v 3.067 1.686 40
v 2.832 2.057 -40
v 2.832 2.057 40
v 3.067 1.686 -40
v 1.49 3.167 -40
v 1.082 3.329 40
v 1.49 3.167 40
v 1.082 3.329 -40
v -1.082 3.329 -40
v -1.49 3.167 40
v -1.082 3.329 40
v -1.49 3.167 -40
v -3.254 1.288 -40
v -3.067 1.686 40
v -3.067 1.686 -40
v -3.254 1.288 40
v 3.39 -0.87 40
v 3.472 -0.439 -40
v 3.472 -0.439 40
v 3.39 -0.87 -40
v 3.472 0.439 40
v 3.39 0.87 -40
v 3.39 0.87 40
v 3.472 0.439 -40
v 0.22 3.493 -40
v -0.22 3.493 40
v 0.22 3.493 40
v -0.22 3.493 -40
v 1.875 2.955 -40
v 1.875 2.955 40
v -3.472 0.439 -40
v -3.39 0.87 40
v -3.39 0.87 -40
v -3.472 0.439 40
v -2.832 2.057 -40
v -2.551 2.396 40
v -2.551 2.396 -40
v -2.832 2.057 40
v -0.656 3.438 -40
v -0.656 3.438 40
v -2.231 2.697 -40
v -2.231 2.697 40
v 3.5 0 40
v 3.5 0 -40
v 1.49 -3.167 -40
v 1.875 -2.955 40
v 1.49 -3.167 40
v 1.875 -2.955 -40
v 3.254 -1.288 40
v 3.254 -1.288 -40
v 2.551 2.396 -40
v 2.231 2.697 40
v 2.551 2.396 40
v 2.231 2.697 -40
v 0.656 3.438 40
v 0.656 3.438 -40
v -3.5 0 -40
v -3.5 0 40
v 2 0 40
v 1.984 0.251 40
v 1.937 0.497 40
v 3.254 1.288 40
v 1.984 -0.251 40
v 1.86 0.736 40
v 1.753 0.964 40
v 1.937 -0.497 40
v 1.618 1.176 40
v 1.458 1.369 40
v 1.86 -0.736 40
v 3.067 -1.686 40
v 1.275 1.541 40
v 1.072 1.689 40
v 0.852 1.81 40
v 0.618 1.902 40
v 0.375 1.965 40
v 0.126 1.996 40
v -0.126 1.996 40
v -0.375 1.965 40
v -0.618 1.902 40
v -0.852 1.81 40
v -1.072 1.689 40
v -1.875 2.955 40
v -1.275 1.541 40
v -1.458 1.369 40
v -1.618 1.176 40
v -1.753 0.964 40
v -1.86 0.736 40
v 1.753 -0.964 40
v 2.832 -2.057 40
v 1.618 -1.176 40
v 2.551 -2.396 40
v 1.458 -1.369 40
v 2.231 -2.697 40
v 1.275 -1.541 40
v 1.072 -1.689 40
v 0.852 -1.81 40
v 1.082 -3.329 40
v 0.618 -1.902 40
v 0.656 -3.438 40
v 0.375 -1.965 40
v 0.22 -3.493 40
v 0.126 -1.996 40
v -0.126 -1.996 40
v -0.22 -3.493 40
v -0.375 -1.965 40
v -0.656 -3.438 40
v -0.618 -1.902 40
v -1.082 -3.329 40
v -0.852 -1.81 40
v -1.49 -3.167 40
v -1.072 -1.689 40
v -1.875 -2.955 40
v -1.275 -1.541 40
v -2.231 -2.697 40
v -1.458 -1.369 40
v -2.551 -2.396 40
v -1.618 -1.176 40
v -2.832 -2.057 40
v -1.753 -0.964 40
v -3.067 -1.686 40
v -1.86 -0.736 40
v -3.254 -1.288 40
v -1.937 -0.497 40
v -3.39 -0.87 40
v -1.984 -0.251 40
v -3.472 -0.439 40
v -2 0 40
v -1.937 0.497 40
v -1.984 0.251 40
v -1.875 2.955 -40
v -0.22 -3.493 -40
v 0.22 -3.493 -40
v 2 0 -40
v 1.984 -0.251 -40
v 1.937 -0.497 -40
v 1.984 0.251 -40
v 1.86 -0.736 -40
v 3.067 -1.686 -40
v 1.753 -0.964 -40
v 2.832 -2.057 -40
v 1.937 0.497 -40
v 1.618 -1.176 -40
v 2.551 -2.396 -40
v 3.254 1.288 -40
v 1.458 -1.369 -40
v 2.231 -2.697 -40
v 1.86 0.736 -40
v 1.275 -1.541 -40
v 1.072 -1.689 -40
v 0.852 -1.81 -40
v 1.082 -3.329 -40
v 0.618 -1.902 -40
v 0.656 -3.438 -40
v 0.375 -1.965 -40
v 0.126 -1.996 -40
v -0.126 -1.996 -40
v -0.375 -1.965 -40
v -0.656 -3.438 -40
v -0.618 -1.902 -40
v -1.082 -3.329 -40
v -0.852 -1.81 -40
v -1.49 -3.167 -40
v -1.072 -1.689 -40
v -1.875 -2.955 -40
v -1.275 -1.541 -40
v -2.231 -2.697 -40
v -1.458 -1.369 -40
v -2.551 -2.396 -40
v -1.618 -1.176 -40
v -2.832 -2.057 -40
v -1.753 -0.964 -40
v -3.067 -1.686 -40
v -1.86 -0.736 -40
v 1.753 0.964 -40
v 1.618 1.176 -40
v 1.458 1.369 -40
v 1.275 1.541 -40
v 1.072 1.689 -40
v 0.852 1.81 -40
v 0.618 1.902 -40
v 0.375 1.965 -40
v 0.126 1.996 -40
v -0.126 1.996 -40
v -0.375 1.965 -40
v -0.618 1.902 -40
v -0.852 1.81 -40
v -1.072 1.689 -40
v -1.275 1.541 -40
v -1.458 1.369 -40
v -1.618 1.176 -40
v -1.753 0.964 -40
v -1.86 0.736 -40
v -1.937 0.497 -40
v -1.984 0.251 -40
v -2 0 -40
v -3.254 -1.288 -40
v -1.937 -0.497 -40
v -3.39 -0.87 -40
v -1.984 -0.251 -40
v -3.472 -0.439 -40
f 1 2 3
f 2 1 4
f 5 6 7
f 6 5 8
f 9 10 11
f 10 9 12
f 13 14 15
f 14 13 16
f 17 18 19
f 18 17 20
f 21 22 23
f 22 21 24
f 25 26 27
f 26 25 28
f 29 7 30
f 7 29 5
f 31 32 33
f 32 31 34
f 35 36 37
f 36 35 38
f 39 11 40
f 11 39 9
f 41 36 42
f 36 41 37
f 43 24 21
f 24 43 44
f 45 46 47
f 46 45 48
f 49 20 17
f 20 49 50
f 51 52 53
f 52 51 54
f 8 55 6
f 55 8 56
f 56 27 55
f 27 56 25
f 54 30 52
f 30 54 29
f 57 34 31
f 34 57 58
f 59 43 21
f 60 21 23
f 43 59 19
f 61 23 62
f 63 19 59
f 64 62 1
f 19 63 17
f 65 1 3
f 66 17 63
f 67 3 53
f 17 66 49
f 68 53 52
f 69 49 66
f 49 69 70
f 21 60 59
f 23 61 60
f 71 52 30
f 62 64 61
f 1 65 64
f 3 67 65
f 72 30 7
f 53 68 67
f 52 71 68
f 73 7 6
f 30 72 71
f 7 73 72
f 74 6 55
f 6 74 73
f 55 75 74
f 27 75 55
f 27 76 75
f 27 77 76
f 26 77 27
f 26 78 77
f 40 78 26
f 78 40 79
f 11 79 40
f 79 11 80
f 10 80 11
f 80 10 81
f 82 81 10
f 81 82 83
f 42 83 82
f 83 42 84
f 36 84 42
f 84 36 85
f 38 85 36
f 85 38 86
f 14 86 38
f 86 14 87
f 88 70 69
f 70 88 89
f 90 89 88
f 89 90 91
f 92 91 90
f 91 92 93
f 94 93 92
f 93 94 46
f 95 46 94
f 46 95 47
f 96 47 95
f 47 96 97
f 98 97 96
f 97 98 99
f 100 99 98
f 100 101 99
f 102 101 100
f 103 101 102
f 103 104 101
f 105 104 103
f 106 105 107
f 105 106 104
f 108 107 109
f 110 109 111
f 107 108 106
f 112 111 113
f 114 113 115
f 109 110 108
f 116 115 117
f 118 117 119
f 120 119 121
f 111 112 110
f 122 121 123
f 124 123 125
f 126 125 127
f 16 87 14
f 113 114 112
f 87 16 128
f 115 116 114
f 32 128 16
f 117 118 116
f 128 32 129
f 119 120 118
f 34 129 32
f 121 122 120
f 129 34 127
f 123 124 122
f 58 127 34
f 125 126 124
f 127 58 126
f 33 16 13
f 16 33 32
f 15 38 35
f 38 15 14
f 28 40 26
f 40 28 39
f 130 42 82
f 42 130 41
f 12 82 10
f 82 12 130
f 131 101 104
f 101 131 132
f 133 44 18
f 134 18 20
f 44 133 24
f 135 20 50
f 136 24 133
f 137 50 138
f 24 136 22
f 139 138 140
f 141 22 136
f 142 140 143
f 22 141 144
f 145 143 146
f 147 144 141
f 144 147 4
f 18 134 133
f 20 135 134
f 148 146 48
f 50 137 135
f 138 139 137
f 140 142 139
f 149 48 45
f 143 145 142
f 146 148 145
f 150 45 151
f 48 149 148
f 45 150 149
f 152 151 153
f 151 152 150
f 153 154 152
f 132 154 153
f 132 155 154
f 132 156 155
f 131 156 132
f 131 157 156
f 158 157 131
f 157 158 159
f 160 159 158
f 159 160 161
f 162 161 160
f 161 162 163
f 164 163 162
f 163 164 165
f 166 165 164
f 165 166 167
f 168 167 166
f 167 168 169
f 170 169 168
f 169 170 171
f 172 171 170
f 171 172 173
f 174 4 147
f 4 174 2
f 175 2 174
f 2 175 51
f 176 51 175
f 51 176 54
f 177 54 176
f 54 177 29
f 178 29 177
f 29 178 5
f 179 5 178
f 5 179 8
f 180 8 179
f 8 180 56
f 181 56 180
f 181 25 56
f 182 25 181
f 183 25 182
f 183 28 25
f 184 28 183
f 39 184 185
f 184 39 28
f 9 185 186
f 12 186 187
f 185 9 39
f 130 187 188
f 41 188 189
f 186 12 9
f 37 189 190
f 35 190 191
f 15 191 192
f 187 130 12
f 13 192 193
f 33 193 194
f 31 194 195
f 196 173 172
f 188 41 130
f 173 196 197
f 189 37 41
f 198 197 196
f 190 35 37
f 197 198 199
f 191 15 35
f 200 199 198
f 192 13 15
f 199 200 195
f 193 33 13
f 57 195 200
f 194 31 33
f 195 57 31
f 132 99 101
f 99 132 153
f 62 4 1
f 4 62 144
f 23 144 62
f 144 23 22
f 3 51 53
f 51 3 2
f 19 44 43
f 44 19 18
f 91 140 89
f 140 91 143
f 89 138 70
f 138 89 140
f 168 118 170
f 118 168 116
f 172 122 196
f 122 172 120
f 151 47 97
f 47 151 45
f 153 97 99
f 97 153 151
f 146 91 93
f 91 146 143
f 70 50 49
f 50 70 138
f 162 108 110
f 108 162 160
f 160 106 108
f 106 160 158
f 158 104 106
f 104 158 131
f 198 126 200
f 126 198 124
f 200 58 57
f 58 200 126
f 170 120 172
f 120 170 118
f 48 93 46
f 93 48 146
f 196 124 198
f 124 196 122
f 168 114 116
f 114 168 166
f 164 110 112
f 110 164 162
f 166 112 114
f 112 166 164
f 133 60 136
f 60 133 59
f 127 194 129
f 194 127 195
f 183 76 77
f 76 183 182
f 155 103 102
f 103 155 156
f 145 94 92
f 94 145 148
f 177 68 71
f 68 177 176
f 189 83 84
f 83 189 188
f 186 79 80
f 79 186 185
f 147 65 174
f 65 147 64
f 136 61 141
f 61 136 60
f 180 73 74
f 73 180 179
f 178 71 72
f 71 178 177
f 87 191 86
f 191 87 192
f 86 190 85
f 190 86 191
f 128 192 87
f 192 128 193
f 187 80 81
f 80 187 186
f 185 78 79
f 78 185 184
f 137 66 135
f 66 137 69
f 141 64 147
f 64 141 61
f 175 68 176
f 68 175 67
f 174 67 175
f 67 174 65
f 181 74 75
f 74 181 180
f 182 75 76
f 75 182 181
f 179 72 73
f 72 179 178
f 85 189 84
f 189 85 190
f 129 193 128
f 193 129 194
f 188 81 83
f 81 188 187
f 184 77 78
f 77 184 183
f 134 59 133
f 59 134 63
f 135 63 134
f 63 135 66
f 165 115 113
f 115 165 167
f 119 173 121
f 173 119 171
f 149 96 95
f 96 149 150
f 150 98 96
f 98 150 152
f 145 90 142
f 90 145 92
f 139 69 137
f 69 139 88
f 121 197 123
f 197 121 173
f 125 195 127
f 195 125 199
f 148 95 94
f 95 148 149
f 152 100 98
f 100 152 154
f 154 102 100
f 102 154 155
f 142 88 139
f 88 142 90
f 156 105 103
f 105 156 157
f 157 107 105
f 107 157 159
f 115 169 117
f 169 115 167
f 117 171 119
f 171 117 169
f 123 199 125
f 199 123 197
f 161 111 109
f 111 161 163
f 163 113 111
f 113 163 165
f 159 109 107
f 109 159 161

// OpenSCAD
$fn = 50;


difference() {
	union() {
		translate(v = [0, 0, -40.0000000000]) {
			cylinder(h = 80, r = 3.5000000000);
		}
	}
	union() {
		translate(v = [0, 0, -100.0000000000]) {
			cylinder(h = 200, r = 2);
		}
	}
}
